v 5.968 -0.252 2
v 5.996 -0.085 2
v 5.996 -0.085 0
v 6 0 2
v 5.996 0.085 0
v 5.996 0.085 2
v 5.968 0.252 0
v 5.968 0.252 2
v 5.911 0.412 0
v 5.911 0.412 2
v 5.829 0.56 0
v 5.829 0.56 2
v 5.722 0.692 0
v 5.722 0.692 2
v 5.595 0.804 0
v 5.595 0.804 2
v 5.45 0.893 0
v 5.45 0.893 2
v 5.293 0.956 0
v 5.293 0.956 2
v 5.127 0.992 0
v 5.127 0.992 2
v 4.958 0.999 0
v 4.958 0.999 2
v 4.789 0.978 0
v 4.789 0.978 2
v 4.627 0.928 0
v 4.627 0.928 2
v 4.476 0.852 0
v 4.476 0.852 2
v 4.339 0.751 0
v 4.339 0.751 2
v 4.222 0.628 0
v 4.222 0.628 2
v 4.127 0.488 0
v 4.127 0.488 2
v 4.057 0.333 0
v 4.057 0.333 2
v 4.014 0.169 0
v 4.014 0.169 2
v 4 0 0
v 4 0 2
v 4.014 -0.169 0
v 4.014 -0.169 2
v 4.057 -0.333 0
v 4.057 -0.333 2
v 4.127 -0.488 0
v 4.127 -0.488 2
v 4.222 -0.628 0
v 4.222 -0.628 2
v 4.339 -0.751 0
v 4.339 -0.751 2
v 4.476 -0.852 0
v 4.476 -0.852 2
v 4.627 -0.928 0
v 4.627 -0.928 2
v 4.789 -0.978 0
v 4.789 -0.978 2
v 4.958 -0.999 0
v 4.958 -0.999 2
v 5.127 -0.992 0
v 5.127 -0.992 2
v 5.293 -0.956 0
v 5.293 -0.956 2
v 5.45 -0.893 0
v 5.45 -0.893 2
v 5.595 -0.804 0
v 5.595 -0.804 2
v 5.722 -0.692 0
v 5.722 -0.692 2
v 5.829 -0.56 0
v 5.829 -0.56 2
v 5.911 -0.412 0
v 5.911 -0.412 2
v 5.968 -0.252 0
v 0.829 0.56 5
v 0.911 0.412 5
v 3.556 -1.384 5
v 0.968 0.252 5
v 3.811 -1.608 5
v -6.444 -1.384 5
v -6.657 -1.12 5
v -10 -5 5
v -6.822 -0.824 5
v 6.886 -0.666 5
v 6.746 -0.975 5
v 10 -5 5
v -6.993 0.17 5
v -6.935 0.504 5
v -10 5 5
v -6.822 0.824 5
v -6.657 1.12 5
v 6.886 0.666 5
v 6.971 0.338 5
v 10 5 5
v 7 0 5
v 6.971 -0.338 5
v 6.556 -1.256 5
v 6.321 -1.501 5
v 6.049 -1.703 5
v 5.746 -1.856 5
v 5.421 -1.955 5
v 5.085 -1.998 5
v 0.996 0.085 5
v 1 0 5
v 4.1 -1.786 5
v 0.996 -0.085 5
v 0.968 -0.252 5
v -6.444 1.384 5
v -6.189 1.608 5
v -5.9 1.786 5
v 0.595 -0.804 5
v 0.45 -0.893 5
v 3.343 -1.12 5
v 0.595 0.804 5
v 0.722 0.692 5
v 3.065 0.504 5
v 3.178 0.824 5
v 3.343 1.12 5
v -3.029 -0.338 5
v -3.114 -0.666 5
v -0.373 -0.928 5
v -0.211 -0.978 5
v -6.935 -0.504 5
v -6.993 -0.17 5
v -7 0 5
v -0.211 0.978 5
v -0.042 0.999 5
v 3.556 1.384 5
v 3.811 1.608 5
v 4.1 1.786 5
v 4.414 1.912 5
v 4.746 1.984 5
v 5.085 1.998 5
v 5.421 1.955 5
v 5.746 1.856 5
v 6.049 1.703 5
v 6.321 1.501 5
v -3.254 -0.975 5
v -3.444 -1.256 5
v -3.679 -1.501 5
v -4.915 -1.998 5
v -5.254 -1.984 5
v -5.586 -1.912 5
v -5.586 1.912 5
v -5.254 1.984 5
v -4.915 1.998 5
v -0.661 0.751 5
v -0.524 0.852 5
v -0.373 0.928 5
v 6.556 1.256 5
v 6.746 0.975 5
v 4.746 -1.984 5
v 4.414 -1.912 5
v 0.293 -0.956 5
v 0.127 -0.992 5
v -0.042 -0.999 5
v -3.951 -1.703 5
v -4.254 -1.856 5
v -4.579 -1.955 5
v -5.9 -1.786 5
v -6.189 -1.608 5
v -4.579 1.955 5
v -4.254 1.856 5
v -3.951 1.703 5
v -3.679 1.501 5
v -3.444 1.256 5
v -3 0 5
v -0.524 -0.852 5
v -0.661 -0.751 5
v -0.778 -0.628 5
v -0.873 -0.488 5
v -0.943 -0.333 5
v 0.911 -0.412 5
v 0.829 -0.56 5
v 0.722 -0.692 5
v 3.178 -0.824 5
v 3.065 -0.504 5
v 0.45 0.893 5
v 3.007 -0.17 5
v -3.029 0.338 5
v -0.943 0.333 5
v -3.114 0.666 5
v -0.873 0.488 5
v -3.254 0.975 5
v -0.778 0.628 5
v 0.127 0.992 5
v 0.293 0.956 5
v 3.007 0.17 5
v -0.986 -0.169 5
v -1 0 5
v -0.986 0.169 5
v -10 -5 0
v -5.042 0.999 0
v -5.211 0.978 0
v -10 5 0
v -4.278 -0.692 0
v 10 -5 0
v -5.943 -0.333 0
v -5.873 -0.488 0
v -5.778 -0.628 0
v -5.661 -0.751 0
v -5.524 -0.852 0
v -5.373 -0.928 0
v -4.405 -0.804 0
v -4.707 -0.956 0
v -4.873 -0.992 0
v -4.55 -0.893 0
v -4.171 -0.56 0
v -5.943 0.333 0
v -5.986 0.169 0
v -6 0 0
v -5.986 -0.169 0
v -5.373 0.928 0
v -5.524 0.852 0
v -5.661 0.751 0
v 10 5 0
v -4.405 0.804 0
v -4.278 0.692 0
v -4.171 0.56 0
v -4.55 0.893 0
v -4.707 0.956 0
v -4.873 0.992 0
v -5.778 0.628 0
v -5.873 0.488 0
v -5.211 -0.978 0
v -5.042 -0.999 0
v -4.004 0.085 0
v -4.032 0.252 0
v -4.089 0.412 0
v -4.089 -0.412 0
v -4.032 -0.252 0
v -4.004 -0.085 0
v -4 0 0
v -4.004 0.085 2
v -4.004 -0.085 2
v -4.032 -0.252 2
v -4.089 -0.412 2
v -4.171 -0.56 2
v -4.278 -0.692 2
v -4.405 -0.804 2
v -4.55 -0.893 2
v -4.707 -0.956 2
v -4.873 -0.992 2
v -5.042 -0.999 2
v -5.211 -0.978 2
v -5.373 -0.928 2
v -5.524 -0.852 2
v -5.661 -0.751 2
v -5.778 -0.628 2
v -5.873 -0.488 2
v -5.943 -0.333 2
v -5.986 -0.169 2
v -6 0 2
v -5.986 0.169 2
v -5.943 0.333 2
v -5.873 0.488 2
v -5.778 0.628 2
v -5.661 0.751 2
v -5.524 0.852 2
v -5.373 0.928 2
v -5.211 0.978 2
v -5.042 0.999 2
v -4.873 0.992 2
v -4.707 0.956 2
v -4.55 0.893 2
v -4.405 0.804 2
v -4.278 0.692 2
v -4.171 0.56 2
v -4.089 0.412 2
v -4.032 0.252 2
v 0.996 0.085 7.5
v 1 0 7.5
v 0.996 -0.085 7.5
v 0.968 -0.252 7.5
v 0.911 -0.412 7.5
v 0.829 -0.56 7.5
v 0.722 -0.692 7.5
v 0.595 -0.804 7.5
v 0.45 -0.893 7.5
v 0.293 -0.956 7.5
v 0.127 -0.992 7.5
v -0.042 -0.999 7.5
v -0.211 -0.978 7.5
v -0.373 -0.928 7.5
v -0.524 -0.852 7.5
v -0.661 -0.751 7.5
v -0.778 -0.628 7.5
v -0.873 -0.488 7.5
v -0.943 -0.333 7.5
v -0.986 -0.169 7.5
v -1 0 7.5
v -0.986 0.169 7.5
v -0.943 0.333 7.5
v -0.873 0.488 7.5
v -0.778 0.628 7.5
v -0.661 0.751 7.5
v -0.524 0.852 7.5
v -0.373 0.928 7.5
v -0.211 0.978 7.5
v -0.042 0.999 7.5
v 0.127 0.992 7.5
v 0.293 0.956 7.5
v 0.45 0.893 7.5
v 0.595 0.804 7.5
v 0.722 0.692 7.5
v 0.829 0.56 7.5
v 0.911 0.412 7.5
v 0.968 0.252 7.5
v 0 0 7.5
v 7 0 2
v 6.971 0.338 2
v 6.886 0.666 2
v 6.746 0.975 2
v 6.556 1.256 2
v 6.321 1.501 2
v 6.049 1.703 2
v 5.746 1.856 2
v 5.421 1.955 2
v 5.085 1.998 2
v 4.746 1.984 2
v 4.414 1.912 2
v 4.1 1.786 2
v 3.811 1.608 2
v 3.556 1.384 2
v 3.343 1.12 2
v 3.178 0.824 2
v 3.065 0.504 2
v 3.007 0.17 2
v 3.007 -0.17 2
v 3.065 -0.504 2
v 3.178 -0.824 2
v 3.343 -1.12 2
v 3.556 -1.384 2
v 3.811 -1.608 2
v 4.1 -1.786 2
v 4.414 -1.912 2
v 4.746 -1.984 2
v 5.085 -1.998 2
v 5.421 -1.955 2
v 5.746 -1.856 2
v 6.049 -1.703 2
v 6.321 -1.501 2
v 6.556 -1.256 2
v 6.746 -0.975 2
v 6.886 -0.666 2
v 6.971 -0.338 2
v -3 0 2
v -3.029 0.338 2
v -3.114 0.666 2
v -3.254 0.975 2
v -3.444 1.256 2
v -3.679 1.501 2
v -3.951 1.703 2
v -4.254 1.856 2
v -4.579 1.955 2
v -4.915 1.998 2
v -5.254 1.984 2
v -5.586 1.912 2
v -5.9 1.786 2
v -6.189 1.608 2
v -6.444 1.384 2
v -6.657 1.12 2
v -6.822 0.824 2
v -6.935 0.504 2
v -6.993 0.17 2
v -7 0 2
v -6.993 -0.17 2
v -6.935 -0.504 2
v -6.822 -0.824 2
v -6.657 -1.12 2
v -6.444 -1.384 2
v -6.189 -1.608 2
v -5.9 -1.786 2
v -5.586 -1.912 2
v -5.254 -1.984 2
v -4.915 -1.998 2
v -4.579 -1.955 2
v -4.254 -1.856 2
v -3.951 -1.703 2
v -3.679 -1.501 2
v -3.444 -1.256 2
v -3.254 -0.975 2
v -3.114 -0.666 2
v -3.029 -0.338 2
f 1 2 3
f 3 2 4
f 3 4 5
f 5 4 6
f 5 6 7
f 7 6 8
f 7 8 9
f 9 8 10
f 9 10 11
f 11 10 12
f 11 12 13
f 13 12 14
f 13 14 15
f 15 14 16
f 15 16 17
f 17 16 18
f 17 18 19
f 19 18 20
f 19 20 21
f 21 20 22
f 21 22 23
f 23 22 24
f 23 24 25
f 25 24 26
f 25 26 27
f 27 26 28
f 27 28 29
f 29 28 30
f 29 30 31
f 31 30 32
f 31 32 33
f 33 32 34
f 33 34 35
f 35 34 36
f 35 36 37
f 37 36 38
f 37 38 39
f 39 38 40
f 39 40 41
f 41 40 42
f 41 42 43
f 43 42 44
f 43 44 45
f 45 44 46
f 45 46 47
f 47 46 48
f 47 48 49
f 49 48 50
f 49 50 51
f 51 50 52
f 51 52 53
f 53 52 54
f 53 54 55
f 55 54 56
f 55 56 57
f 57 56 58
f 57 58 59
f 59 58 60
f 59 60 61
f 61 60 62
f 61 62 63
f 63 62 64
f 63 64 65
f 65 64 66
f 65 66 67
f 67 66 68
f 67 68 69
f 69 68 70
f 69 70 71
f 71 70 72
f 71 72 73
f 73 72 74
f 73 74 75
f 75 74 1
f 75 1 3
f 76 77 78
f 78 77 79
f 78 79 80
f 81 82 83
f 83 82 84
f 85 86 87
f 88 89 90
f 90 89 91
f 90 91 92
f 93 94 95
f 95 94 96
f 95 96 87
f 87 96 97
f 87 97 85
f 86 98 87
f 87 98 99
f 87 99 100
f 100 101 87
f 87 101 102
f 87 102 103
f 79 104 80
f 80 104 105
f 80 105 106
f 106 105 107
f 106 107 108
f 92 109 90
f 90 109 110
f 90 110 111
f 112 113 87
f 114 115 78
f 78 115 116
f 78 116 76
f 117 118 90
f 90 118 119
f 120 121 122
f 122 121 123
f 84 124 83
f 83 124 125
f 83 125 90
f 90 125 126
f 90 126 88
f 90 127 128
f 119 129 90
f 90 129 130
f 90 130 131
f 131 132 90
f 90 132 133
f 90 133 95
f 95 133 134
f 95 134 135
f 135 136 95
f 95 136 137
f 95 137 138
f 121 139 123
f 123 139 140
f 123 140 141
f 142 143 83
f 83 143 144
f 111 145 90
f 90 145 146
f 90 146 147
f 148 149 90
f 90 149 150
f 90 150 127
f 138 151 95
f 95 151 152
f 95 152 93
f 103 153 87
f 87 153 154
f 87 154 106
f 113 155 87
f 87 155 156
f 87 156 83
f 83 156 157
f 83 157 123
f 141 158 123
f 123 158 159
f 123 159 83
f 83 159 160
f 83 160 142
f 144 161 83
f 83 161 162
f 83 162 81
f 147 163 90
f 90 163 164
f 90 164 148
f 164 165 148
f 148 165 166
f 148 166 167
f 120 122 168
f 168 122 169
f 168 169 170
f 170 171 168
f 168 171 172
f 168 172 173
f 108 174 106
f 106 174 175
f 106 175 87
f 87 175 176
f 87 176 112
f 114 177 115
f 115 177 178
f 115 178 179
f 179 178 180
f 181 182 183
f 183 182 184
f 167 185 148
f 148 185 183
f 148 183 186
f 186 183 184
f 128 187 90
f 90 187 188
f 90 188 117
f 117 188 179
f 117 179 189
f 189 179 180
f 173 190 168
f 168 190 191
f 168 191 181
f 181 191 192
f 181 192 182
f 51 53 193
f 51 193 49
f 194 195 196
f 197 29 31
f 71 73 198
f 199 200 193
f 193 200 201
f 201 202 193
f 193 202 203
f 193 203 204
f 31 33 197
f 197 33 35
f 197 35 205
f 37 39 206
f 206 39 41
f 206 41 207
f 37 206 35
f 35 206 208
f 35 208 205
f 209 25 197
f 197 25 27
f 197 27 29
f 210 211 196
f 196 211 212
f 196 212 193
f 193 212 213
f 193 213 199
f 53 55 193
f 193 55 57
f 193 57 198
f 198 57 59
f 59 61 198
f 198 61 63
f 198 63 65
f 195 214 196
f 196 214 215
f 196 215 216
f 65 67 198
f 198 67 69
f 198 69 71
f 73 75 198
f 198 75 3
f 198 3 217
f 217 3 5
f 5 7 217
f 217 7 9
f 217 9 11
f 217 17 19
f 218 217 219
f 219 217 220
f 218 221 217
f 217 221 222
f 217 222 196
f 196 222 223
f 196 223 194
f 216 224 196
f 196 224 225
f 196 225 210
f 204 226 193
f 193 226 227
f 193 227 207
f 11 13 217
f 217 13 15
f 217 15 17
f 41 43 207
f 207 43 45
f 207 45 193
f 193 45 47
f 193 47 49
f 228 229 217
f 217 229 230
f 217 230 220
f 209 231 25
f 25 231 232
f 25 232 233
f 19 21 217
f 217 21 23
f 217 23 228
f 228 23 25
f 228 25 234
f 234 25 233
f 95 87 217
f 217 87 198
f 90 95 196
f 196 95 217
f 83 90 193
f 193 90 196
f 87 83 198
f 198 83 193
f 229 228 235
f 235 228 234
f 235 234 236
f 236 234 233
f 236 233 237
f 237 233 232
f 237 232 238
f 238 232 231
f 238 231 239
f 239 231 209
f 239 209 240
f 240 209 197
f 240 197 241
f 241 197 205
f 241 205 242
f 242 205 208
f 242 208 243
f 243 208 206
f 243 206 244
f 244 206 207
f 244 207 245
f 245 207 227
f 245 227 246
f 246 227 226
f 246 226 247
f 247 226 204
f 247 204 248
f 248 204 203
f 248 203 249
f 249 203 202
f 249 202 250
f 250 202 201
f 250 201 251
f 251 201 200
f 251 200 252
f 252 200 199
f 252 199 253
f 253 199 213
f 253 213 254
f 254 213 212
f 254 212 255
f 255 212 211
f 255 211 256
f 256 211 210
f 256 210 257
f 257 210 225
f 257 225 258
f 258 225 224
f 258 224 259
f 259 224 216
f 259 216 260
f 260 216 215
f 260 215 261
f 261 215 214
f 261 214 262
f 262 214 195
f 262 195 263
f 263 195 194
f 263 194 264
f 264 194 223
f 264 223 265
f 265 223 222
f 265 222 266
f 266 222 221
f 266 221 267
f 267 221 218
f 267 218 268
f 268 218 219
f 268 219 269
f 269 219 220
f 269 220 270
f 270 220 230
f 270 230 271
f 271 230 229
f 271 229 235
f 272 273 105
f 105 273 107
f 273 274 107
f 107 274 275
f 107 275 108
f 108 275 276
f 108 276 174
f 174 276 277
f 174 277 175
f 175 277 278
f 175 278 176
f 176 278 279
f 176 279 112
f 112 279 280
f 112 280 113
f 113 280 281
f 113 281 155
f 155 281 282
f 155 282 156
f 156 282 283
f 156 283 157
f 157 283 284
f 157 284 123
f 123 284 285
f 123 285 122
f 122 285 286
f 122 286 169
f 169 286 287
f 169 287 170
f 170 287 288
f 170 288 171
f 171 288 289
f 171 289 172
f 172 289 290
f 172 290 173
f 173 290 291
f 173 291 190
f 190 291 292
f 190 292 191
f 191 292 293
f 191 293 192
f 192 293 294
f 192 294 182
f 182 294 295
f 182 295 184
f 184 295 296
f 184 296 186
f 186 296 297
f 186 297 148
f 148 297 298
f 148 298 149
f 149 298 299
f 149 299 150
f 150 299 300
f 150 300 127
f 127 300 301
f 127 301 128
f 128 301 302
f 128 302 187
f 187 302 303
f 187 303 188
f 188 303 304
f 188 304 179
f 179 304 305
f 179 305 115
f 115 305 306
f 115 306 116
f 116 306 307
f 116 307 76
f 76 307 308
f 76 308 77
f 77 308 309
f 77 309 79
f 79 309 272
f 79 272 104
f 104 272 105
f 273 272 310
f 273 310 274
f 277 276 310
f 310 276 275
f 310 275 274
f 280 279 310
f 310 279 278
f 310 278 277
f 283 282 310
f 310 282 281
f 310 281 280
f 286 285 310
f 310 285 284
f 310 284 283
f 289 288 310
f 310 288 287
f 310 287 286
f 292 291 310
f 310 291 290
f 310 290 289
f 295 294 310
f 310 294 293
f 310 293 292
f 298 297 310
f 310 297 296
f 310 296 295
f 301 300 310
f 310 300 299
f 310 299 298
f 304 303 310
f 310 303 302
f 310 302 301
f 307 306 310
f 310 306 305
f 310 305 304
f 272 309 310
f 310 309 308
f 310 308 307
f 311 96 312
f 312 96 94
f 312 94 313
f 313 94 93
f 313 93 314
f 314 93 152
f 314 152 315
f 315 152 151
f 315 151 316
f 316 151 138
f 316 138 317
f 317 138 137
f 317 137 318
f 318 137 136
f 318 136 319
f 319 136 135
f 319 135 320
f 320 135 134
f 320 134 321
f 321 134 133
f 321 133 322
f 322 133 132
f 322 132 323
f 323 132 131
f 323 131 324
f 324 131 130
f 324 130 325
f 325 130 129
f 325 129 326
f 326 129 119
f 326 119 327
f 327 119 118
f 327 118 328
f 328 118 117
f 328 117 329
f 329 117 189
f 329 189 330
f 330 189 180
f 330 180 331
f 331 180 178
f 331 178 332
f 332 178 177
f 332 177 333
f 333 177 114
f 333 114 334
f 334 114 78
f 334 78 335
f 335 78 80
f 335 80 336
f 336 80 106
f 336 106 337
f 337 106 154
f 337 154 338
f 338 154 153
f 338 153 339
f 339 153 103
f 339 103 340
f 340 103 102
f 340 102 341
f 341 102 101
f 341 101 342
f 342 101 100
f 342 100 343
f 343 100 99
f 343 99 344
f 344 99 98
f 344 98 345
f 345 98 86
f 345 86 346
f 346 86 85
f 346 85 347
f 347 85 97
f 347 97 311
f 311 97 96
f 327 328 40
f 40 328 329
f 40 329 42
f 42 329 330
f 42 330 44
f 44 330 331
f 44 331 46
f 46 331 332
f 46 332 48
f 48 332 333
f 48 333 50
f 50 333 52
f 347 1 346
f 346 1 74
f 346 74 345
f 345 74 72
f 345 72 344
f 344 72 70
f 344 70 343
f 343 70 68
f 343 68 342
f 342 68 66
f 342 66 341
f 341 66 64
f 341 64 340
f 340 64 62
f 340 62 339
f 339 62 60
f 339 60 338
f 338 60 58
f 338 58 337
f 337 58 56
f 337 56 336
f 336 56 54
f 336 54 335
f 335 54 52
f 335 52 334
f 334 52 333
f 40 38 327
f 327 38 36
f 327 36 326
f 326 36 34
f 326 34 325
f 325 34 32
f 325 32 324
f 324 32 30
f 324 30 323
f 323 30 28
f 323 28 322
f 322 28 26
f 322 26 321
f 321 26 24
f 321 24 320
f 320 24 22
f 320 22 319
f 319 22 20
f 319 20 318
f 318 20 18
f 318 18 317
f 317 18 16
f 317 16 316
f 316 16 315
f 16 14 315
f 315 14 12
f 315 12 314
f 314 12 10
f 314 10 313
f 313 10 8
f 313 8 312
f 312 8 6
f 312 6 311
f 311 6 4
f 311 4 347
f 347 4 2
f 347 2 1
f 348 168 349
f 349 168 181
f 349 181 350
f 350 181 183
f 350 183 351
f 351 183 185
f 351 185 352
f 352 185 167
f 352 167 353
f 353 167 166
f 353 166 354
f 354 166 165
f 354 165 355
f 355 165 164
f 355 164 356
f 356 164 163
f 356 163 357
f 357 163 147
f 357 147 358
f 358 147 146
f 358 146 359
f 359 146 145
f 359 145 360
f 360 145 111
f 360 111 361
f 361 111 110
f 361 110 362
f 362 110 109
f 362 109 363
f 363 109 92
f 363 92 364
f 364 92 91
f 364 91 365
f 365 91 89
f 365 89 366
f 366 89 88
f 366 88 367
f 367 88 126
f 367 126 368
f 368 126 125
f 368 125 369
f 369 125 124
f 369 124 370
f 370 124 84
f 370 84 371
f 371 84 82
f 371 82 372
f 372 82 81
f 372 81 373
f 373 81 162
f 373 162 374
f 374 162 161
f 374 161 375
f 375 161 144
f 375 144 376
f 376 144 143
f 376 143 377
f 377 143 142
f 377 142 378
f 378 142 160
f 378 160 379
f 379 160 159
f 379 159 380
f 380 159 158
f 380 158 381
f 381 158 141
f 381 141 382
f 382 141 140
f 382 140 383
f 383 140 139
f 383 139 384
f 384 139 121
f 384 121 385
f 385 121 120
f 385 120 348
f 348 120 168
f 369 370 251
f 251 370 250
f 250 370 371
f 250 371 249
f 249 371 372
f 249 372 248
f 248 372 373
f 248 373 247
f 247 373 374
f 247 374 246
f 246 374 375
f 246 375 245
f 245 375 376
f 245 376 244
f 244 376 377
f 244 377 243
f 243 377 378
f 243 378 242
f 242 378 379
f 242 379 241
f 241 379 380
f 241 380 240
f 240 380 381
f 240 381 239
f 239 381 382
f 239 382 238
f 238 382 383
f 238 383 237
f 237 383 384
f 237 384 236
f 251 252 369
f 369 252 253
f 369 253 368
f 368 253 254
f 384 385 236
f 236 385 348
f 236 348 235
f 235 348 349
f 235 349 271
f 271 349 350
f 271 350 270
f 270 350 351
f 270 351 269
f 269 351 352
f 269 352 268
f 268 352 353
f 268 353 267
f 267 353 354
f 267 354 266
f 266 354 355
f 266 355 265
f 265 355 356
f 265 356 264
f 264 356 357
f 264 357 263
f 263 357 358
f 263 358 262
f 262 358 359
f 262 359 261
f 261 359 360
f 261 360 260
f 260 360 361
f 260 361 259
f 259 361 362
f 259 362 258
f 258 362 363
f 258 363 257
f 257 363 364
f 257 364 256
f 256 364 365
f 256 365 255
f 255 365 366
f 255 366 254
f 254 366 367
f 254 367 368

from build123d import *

# Parameters (mm, degrees)
SKETCH_1_W          = 20
SKETCH_1_H          = 10
SKETCH_1_R          = 1
EXTRUDE_1_DEPTH     = 5
SKETCH_2_R          = 1
EXTRUDE_2_DEPTH     = 2.5
SKETCH_4_R          = 2
CUT_EXTRUDE_2_DEPTH = 3


with BuildPart() as part:
    # 草图1 → 凸台-拉伸1 (new body)
    with BuildSketch(Plane.XY):
        Rectangle(SKETCH_1_W, SKETCH_1_H)
        with Locations((-5, 0)):
            Circle(SKETCH_1_R, mode=Mode.SUBTRACT)
        with Locations((5, 0)):
            Circle(SKETCH_1_R, mode=Mode.SUBTRACT)
    extrude(amount=EXTRUDE_1_DEPTH)

    # 草图2 → 凸台-拉伸2 (add)
    with BuildSketch(Plane.XY.offset(5)):
        Circle(SKETCH_2_R)
    extrude(amount=EXTRUDE_2_DEPTH)

    # 草图4 → 切除-拉伸2 (cut)
    with BuildSketch(Plane.XY.offset(5)):
        with Locations((5, 0)):
            Circle(SKETCH_4_R)
        with Locations((-5, 0)):
            Circle(SKETCH_4_R)
    extrude(amount=-CUT_EXTRUDE_2_DEPTH, mode=Mode.SUBTRACT)


solid = part.part
